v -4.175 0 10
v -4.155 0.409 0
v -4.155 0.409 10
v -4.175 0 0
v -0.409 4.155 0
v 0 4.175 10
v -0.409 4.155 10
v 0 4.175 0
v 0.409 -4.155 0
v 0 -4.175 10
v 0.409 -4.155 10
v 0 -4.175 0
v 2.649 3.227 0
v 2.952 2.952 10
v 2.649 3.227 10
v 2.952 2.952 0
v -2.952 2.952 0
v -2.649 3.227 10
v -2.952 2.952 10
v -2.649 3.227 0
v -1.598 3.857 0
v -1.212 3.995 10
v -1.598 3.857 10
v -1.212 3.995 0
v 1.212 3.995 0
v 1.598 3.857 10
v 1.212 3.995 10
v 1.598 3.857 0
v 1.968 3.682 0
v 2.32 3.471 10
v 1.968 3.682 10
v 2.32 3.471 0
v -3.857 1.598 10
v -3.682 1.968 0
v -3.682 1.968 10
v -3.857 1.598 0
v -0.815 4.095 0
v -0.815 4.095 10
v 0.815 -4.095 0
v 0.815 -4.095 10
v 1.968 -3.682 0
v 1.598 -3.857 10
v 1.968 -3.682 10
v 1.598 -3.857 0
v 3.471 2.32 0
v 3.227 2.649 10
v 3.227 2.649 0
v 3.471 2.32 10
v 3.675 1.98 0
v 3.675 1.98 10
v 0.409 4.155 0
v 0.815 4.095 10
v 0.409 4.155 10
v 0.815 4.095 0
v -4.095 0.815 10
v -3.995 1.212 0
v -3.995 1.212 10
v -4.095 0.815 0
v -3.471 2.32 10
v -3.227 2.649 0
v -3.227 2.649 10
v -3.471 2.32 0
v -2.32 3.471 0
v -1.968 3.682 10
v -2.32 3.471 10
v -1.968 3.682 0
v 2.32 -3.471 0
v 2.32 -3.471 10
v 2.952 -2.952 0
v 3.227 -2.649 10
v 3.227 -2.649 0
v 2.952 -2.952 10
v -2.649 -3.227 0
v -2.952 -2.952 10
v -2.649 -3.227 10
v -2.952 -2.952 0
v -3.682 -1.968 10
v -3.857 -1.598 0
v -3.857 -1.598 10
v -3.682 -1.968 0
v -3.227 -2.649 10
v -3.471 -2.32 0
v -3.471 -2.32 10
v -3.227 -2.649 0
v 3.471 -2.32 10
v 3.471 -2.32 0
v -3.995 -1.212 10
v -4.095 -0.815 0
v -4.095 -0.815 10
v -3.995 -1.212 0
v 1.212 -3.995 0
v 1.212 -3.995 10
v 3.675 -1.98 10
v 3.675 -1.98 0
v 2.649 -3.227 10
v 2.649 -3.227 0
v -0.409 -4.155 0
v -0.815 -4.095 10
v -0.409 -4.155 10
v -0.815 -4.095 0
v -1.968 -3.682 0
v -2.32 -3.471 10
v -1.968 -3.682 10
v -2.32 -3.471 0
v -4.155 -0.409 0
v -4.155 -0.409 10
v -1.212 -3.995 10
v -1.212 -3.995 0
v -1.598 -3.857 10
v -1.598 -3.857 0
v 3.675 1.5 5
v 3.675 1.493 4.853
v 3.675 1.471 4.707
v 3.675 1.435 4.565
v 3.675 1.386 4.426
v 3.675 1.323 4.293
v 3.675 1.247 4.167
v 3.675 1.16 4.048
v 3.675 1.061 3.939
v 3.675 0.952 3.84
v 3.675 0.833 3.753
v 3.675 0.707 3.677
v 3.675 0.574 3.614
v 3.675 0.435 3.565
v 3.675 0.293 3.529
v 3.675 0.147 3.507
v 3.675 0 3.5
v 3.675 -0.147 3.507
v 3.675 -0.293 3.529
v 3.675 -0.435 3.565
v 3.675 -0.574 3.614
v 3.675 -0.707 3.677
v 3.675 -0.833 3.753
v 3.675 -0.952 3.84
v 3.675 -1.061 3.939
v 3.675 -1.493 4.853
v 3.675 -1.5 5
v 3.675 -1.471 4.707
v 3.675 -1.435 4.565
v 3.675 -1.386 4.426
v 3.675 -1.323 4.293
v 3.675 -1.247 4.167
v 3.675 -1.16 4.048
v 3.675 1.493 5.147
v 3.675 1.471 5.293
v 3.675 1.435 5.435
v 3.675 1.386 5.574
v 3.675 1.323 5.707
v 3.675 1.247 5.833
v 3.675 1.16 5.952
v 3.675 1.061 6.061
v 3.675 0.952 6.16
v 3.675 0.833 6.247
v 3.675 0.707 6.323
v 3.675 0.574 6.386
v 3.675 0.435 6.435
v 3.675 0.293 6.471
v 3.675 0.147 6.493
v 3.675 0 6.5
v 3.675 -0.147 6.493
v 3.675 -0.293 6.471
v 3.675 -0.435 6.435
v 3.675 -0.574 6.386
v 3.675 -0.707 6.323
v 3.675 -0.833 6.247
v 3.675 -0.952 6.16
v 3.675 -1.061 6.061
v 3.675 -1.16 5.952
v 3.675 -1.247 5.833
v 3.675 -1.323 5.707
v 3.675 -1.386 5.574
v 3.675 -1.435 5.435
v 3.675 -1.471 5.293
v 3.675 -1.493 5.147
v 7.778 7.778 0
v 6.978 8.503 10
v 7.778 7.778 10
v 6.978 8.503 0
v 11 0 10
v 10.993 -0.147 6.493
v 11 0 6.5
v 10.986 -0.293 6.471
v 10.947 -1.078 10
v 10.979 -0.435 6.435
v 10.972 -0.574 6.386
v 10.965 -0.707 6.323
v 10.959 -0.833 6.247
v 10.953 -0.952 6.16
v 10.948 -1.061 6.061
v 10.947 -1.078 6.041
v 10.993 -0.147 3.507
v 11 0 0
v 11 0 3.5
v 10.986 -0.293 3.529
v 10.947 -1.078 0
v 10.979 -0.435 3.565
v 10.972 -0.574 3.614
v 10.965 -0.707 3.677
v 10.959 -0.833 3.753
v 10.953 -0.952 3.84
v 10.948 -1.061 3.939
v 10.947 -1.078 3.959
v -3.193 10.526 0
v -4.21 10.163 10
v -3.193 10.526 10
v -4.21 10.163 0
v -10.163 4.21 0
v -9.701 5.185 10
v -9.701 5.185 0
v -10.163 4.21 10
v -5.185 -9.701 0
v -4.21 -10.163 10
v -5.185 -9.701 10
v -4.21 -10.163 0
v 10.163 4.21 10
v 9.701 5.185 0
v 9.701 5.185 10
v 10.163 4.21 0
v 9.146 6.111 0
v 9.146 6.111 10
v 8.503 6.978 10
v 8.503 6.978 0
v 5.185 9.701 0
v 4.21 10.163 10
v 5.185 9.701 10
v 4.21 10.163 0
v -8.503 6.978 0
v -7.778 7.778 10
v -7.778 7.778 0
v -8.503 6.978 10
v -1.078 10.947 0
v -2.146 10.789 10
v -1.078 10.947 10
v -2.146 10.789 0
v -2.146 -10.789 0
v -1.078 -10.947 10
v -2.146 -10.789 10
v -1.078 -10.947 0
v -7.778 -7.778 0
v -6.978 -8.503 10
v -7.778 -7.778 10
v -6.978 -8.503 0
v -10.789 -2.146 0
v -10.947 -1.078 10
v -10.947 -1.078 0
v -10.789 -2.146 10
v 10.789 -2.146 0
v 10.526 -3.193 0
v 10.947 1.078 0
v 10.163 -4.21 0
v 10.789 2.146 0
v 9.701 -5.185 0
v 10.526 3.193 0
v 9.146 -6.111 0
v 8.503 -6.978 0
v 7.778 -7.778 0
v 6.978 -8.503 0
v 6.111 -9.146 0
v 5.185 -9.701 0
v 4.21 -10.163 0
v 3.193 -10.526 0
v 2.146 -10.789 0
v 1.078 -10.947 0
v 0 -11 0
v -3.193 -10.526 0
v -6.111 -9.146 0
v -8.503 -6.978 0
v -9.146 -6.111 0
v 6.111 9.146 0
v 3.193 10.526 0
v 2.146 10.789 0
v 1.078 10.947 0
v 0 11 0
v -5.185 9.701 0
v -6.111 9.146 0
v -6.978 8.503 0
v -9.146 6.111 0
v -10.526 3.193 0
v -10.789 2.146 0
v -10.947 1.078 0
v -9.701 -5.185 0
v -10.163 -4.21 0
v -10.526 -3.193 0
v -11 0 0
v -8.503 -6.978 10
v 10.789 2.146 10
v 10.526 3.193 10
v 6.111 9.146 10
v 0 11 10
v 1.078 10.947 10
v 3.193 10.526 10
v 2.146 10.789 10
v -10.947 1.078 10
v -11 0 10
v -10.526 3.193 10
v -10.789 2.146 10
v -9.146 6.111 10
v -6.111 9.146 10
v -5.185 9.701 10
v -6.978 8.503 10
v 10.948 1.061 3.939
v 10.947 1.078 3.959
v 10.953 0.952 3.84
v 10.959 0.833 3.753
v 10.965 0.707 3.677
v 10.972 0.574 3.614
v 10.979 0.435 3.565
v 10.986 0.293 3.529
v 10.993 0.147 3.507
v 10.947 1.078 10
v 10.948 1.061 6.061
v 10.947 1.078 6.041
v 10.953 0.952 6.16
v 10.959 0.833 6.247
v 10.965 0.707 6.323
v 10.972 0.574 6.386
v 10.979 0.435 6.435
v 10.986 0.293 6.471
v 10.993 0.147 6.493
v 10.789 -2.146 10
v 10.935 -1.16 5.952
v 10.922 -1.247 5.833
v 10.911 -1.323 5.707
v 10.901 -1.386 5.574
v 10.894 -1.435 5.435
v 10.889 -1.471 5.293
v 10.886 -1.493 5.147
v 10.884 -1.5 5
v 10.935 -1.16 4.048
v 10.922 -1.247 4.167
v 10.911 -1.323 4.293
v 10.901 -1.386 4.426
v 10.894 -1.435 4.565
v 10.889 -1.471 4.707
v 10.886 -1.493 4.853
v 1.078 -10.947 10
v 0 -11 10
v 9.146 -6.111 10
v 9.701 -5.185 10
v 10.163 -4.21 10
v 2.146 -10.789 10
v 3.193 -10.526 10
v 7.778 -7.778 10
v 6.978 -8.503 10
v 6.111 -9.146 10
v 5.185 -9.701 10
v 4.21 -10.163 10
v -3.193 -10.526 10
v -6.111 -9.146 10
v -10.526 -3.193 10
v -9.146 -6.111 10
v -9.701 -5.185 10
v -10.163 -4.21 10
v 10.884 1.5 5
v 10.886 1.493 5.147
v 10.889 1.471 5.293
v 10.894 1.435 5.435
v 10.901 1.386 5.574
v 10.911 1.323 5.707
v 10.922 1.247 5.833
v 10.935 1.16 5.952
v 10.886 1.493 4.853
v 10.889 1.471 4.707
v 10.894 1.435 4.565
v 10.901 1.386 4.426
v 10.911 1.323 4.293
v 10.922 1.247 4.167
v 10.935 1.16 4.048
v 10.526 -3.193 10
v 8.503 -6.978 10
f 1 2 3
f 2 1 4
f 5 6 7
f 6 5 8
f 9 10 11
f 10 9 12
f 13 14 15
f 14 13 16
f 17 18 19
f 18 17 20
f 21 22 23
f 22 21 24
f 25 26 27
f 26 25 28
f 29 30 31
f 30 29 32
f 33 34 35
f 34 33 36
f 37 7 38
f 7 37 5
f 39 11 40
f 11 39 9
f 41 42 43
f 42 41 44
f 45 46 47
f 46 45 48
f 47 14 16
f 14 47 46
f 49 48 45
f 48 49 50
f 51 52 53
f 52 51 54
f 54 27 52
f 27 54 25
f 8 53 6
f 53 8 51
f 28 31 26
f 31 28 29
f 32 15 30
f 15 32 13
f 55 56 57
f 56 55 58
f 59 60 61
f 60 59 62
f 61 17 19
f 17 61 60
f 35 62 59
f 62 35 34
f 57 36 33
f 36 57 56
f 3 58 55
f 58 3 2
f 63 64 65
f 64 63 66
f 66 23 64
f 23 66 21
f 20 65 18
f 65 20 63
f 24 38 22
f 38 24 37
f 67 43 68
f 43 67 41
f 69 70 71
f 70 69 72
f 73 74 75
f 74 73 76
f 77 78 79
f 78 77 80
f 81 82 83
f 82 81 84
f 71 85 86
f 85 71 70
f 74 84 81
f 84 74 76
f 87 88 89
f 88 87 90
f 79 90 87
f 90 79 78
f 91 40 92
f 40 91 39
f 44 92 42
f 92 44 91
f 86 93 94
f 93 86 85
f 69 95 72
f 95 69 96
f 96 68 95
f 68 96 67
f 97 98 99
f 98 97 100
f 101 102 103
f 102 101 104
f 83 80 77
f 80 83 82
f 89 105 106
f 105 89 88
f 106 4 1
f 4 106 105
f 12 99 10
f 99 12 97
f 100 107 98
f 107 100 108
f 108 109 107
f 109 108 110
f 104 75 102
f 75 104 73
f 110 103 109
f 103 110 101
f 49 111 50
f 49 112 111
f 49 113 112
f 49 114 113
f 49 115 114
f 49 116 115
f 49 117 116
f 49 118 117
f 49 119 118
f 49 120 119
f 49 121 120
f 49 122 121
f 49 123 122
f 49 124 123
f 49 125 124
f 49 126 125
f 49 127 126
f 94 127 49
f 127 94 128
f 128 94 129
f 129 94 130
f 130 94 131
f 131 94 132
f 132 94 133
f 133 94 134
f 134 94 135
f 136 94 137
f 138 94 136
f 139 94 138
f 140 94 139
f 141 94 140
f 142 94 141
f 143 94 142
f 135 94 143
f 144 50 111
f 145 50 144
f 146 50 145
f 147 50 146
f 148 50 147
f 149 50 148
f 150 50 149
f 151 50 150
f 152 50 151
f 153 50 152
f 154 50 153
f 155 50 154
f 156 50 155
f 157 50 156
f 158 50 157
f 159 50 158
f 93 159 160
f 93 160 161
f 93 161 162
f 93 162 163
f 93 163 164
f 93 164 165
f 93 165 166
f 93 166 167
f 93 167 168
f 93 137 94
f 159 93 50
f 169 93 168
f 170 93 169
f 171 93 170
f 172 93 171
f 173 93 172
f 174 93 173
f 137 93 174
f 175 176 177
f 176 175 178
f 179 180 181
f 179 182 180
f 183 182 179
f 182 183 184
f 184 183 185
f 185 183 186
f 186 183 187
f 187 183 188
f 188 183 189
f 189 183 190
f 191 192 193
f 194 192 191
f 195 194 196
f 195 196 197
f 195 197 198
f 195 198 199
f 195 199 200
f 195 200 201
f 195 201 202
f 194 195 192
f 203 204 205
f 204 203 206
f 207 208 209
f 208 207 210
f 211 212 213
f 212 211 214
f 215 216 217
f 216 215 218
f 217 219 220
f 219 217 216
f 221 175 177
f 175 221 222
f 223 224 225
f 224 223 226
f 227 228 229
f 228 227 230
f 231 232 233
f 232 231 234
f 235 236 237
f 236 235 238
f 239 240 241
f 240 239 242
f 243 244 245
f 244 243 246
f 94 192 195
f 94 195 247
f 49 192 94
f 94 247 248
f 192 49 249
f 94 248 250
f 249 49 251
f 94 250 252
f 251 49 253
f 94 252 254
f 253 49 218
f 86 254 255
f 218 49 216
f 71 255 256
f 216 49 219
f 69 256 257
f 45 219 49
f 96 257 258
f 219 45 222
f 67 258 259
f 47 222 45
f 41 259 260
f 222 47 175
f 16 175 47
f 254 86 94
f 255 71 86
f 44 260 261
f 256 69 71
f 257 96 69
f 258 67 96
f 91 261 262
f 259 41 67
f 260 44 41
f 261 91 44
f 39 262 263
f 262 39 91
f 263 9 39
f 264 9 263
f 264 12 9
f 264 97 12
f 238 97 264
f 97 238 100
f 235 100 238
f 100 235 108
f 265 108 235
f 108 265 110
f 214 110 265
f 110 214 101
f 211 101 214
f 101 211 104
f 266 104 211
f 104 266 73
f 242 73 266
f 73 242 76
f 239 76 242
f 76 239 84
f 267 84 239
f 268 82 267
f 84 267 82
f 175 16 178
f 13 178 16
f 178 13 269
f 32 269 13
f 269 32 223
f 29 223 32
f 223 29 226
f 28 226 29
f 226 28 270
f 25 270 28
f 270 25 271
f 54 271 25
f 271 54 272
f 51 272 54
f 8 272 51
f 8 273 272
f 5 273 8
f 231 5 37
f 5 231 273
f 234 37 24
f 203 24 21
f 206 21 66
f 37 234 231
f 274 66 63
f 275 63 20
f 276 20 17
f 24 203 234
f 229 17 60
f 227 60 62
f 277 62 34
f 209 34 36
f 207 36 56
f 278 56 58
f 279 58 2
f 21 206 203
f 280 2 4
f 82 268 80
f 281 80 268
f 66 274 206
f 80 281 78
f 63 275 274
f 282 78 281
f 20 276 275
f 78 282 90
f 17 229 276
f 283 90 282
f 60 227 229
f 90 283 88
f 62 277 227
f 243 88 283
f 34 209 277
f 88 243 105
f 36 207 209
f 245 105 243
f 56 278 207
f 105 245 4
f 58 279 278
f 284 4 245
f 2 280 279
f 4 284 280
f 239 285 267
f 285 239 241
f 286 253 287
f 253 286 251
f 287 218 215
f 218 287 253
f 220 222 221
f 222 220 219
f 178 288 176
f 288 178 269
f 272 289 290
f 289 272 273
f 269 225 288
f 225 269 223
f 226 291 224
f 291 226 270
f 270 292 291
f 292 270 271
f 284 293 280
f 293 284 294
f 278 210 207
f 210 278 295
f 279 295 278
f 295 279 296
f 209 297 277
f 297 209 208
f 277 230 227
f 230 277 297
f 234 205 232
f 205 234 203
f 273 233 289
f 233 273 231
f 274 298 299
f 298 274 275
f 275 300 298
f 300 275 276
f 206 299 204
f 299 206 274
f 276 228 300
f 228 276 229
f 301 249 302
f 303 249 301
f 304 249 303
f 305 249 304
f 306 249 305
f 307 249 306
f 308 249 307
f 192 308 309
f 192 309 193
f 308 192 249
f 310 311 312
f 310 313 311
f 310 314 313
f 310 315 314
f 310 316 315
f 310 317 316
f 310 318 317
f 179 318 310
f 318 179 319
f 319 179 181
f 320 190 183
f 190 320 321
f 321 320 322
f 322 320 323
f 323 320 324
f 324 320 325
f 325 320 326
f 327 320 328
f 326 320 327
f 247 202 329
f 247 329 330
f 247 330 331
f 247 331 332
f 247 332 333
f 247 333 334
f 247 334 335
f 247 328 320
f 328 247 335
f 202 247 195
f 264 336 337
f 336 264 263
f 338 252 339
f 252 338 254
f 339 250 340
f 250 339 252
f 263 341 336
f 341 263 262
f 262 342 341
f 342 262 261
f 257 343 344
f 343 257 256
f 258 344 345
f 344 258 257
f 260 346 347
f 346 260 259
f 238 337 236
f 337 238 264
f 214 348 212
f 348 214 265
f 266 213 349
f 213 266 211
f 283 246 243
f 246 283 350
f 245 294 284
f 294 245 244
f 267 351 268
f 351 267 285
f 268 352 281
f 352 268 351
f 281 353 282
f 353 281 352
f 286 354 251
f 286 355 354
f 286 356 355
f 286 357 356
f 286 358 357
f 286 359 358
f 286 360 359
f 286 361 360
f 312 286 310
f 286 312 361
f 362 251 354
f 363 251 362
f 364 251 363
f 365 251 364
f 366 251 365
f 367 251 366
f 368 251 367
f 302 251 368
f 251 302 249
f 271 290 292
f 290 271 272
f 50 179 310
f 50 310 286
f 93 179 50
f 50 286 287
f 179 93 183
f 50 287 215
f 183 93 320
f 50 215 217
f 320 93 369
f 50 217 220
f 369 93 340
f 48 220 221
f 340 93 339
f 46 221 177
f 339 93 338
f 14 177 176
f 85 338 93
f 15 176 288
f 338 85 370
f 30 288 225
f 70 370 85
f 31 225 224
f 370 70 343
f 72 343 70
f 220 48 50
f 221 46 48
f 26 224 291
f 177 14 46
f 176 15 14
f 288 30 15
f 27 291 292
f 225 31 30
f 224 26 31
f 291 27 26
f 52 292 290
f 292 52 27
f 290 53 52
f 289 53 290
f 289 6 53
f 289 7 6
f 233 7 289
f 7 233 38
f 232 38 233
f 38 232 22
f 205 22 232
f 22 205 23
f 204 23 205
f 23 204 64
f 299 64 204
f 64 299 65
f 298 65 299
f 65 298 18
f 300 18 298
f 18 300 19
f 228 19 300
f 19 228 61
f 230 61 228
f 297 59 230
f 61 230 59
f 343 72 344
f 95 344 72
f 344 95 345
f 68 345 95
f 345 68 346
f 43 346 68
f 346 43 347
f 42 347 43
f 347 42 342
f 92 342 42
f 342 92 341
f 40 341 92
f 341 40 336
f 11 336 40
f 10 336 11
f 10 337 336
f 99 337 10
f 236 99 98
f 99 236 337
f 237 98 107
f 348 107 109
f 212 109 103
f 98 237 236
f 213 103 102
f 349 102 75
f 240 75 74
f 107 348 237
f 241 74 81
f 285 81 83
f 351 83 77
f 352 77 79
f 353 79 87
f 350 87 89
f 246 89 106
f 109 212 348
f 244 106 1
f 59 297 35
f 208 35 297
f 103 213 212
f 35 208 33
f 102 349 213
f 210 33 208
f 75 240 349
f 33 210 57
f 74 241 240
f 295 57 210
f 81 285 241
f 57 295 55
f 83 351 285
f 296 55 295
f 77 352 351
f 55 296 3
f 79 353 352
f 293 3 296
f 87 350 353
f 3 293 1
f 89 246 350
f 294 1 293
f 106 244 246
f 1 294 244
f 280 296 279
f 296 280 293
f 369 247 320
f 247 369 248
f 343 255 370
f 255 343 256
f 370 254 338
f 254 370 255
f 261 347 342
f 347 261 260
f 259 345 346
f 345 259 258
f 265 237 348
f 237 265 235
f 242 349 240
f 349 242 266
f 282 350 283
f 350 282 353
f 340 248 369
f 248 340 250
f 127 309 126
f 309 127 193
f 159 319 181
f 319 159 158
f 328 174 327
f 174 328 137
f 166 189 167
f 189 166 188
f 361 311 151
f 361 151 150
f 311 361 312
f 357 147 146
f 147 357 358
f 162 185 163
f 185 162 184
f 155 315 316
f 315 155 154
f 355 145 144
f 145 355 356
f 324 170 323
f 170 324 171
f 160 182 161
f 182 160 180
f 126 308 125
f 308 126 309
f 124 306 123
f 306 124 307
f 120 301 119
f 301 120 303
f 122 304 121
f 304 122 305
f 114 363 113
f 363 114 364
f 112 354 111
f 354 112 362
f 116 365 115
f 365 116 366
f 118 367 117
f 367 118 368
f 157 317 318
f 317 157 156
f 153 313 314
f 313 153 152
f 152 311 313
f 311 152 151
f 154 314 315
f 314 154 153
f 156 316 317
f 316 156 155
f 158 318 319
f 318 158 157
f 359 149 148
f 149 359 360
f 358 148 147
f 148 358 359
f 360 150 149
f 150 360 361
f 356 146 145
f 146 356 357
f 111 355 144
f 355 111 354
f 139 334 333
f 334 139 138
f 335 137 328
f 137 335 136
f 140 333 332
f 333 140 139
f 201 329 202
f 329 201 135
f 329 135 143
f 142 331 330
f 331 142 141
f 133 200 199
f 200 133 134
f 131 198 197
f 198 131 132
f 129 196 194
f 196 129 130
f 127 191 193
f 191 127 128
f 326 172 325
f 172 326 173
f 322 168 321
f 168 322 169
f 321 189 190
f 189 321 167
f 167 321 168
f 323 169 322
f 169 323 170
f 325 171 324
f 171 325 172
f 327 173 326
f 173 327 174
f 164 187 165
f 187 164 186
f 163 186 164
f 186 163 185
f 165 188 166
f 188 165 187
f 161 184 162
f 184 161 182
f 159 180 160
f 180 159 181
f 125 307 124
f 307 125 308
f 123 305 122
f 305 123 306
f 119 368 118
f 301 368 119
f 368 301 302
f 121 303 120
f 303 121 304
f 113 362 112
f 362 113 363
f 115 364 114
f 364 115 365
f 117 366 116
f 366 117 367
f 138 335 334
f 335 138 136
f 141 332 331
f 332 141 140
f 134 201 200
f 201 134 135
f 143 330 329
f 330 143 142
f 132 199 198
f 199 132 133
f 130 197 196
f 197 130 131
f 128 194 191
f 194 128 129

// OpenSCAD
// file: parameters.scad
// =============================================================================
// Gen-BH — nightly 2026-10-04 (physics_scorer, honest magpylib watts)
// All 16 O20 magnets used as 8 double-height (10 mm) poles: 4-pole / 6-coil dual rotor on 3 mm steel, tall 9.9 mm copper; O5 assists left out because the scorer shows they do not help this pole layout.
// Clocking 0 deg (magnets N facing S) + D-flat keyed bore + index notch + flip-symmetric hole map.
// Windable 2-piece bobbin; turns = physics_scorer turns_fit; copper only between flanges.
// Steel back-iron: two 3.0 mm mild-steel discs (steel_backiron_disc.dxf); magnets sit ON the steel
// (through-pockets) -> score with --back-iron.
// =============================================================================
topology            = "dual_rotor";

// --- Wire / winding (physics_scorer winding-fit) -------------------------------
wire_awg            = 26;
wire_od             = 0.45;     // insulated OD mm (bare 0.405)
fill_realistic      = 0.60;     // insulated-wire area / window, hand-wound layered
turns               = 571;       // = physics_scorer turns_fit (do NOT raise)
coil_former_type    = "bobbin";
coil_core_inset     = 15.30;     // radial copper build: hub = copper boundary inset by this
wind_build_axial    = 0.0;      // nothing proud of the flanges
wind_build_radial   = 0.0;

// --- Bobbin (base + lid) ---------------------------------------------------------
coil_id_r           = 22.00;    // copper boundary sector
coil_od_r           = 62.00;
span_deg            = 50.35;    // = pitch - 2*asin((wall+0.85)/coil_id_r) -> >=1.2 mm stator web
former_web          = 9.90;     // copper height between flanges (TALL copper: steel keeps Bz up)
flange_t            = 0.80;     // >= 0.8 mm FDM wall rule (tall winds push on the flanges)
wall                = 1.00;     // flange lip beyond copper
former_bare_h       = former_web + 2 * flange_t;
coil_envelope_h     = former_bare_h + 2 * wind_build_axial;
tab_w               = 7.0;
tab_len             = 7.0;
tab_h               = former_bare_h / 2;
pin_d               = 1.9;      // 1.75 mm filament locating pin
coil_mount_r        = coil_od_r + 0.2 + 4.0;
lead_y              = 1.6;
lead_slot_w         = 0.9;
lead_groove_d       = 0.6;

// --- Gap -------------------------------------------------------------------------
run_clear           = 0.50;     // rotor face -> flange
gap_spacer_h        = run_clear + wind_build_axial;
m2m                 = coil_envelope_h + 2 * run_clear;   // rotor face to rotor face (= gap_sleeve length)

// --- Stator ----------------------------------------------------------------------
coil_stations       = 6;
bay_clear           = 0.25;
stator_thick        = former_bare_h;                        // bobbins flush both faces
stator_od           = 148.0;
shaft_clear_stator  = 14.0;     // stator is static; gap sleeve OD 12 spins inside

// --- Rotor(s) --------------------------------------------------------------------
magnet_Br           = 1.43;     // N52
magnet_d_large      = 20.0;
magnet_h_large      = 10.0;      // two O20x5 stacked per pocket
magnet_h_small      = 10.0;      // two O5x5 stacked per pocket
halbach_magnetisation = "none";  // NO O5 assist magnets in this kit (scorer: they do not help 4-pole)
rotor_b_same_axis   = true;     // same-index magnets share one axis: N faces S across the gap
large_pocket_d      = 20.3;
small_pocket_d      = 5.3;
pocket_h            = 10.10;     // THROUGH the carrier: magnet back face sits on the steel disc
large_n             = 4;
R_large             = 44.0;
small_r_list        = [];       // no O5 pockets
carrier_od          = 126.0;
carrier_thick       = pocket_h;
hub_h               = 10.0;
hub_od              = 24.0;     // slim hub so the M4 brace rods fit at R~18 inside the coil ring
hub_insert_d        = 4.0;      // M3 heat-set insert, radial, bears on the D-flat
rotor_b_offset_deg  = 0.0;      // CLOCKING: magnets directly opposite
shaft_key           = "dflat";
dflat_depth         = 0.5;      // 8 mm shaft with 0.5 mm flat (7.5 across flat)
index_notch_d       = 3.0;

// --- Steel back-iron (buyable laser-cut) -------------------------------------------
steel_t             = 3.0;      // mild steel thickness (not modelled by the image method; >=3 avoids saturation)
steel_center_hole   = 26.0;     // slips over the rotor hub (OD 24)

// --- Modular MAX interface ----------------------------------------------------------
shaft_bore          = 8.35;
dflat_x             = 4.0 - dflat_depth + (shaft_bore - 8.0) / 2;
bearing_d           = 21.85;
bearing_h           = 7.2;
m3_clear            = 3.5;
bolt_r_inner        = 27.0;     // M3 steel-disc clamp bolts (inside the magnet ring)
bolt_n_inner        = 4;
bolt_inner_angles   = [45, 135, 225, 315];
bolt_r_outer        = 58.0;     // M3 steel-disc clamp bolts (outside the magnet ring)
bolt_outer_angles   = [45, 135, 225, 315];
flange_bolt_r       = 69.0;     // frame rods: OUTSIDE the rotor OD (rotors spin inside them)
flange_bolt_n       = 6;
flange_bolt_offset  = 30.00;    // between coil stations -> never cuts a lead groove/tab
brace_r             = 17.5;
brace_d             = 4.3;      // temporary M4 jack rods (assembly only)
brace_n             = 4;
brace_angles        = [0, 90, 180, 270];          // flip-symmetric

spacer_pad_od       = 14.0;
spacer_pad_id       = m3_clear;
endbell_od          = 148.0;
endbell_thick       = 8.0;
endbell_shaft_clear = 10.0;
collar_h            = 10.0;
standoff_od         = 9.0;
frame_standoff_h    = run_clear + carrier_thick + hub_h + collar_h + 2.0;
sleeve_od           = 12.0;
plate_max_mm        = 410;

$fn = 64;
// main file
// Gen-BH — shaft collar with D-flat bore (set screw bears on the flat); print x4
include <parameters.scad>;
$fn = 64;
// D-flat keyed bore: flat faces +X (angle 0 = magnet pocket 0 = index notch)
module dflat_bore(h) {
    intersection() {
        cylinder(d=shaft_bore, h=h);
        translate([-shaft_bore, -shaft_bore, 0]) cube([shaft_bore + dflat_x, 2*shaft_bore, h]);
    }
}

od = 22; h = collar_h; set_d = 3.0;
difference() {
    cylinder(d=od, h=h);
    translate([0, 0, -0.1]) dflat_bore(h + 0.2);
    translate([0, 0, h/2]) rotate([0, 90, 0]) cylinder(d=set_d, h=od);
}
